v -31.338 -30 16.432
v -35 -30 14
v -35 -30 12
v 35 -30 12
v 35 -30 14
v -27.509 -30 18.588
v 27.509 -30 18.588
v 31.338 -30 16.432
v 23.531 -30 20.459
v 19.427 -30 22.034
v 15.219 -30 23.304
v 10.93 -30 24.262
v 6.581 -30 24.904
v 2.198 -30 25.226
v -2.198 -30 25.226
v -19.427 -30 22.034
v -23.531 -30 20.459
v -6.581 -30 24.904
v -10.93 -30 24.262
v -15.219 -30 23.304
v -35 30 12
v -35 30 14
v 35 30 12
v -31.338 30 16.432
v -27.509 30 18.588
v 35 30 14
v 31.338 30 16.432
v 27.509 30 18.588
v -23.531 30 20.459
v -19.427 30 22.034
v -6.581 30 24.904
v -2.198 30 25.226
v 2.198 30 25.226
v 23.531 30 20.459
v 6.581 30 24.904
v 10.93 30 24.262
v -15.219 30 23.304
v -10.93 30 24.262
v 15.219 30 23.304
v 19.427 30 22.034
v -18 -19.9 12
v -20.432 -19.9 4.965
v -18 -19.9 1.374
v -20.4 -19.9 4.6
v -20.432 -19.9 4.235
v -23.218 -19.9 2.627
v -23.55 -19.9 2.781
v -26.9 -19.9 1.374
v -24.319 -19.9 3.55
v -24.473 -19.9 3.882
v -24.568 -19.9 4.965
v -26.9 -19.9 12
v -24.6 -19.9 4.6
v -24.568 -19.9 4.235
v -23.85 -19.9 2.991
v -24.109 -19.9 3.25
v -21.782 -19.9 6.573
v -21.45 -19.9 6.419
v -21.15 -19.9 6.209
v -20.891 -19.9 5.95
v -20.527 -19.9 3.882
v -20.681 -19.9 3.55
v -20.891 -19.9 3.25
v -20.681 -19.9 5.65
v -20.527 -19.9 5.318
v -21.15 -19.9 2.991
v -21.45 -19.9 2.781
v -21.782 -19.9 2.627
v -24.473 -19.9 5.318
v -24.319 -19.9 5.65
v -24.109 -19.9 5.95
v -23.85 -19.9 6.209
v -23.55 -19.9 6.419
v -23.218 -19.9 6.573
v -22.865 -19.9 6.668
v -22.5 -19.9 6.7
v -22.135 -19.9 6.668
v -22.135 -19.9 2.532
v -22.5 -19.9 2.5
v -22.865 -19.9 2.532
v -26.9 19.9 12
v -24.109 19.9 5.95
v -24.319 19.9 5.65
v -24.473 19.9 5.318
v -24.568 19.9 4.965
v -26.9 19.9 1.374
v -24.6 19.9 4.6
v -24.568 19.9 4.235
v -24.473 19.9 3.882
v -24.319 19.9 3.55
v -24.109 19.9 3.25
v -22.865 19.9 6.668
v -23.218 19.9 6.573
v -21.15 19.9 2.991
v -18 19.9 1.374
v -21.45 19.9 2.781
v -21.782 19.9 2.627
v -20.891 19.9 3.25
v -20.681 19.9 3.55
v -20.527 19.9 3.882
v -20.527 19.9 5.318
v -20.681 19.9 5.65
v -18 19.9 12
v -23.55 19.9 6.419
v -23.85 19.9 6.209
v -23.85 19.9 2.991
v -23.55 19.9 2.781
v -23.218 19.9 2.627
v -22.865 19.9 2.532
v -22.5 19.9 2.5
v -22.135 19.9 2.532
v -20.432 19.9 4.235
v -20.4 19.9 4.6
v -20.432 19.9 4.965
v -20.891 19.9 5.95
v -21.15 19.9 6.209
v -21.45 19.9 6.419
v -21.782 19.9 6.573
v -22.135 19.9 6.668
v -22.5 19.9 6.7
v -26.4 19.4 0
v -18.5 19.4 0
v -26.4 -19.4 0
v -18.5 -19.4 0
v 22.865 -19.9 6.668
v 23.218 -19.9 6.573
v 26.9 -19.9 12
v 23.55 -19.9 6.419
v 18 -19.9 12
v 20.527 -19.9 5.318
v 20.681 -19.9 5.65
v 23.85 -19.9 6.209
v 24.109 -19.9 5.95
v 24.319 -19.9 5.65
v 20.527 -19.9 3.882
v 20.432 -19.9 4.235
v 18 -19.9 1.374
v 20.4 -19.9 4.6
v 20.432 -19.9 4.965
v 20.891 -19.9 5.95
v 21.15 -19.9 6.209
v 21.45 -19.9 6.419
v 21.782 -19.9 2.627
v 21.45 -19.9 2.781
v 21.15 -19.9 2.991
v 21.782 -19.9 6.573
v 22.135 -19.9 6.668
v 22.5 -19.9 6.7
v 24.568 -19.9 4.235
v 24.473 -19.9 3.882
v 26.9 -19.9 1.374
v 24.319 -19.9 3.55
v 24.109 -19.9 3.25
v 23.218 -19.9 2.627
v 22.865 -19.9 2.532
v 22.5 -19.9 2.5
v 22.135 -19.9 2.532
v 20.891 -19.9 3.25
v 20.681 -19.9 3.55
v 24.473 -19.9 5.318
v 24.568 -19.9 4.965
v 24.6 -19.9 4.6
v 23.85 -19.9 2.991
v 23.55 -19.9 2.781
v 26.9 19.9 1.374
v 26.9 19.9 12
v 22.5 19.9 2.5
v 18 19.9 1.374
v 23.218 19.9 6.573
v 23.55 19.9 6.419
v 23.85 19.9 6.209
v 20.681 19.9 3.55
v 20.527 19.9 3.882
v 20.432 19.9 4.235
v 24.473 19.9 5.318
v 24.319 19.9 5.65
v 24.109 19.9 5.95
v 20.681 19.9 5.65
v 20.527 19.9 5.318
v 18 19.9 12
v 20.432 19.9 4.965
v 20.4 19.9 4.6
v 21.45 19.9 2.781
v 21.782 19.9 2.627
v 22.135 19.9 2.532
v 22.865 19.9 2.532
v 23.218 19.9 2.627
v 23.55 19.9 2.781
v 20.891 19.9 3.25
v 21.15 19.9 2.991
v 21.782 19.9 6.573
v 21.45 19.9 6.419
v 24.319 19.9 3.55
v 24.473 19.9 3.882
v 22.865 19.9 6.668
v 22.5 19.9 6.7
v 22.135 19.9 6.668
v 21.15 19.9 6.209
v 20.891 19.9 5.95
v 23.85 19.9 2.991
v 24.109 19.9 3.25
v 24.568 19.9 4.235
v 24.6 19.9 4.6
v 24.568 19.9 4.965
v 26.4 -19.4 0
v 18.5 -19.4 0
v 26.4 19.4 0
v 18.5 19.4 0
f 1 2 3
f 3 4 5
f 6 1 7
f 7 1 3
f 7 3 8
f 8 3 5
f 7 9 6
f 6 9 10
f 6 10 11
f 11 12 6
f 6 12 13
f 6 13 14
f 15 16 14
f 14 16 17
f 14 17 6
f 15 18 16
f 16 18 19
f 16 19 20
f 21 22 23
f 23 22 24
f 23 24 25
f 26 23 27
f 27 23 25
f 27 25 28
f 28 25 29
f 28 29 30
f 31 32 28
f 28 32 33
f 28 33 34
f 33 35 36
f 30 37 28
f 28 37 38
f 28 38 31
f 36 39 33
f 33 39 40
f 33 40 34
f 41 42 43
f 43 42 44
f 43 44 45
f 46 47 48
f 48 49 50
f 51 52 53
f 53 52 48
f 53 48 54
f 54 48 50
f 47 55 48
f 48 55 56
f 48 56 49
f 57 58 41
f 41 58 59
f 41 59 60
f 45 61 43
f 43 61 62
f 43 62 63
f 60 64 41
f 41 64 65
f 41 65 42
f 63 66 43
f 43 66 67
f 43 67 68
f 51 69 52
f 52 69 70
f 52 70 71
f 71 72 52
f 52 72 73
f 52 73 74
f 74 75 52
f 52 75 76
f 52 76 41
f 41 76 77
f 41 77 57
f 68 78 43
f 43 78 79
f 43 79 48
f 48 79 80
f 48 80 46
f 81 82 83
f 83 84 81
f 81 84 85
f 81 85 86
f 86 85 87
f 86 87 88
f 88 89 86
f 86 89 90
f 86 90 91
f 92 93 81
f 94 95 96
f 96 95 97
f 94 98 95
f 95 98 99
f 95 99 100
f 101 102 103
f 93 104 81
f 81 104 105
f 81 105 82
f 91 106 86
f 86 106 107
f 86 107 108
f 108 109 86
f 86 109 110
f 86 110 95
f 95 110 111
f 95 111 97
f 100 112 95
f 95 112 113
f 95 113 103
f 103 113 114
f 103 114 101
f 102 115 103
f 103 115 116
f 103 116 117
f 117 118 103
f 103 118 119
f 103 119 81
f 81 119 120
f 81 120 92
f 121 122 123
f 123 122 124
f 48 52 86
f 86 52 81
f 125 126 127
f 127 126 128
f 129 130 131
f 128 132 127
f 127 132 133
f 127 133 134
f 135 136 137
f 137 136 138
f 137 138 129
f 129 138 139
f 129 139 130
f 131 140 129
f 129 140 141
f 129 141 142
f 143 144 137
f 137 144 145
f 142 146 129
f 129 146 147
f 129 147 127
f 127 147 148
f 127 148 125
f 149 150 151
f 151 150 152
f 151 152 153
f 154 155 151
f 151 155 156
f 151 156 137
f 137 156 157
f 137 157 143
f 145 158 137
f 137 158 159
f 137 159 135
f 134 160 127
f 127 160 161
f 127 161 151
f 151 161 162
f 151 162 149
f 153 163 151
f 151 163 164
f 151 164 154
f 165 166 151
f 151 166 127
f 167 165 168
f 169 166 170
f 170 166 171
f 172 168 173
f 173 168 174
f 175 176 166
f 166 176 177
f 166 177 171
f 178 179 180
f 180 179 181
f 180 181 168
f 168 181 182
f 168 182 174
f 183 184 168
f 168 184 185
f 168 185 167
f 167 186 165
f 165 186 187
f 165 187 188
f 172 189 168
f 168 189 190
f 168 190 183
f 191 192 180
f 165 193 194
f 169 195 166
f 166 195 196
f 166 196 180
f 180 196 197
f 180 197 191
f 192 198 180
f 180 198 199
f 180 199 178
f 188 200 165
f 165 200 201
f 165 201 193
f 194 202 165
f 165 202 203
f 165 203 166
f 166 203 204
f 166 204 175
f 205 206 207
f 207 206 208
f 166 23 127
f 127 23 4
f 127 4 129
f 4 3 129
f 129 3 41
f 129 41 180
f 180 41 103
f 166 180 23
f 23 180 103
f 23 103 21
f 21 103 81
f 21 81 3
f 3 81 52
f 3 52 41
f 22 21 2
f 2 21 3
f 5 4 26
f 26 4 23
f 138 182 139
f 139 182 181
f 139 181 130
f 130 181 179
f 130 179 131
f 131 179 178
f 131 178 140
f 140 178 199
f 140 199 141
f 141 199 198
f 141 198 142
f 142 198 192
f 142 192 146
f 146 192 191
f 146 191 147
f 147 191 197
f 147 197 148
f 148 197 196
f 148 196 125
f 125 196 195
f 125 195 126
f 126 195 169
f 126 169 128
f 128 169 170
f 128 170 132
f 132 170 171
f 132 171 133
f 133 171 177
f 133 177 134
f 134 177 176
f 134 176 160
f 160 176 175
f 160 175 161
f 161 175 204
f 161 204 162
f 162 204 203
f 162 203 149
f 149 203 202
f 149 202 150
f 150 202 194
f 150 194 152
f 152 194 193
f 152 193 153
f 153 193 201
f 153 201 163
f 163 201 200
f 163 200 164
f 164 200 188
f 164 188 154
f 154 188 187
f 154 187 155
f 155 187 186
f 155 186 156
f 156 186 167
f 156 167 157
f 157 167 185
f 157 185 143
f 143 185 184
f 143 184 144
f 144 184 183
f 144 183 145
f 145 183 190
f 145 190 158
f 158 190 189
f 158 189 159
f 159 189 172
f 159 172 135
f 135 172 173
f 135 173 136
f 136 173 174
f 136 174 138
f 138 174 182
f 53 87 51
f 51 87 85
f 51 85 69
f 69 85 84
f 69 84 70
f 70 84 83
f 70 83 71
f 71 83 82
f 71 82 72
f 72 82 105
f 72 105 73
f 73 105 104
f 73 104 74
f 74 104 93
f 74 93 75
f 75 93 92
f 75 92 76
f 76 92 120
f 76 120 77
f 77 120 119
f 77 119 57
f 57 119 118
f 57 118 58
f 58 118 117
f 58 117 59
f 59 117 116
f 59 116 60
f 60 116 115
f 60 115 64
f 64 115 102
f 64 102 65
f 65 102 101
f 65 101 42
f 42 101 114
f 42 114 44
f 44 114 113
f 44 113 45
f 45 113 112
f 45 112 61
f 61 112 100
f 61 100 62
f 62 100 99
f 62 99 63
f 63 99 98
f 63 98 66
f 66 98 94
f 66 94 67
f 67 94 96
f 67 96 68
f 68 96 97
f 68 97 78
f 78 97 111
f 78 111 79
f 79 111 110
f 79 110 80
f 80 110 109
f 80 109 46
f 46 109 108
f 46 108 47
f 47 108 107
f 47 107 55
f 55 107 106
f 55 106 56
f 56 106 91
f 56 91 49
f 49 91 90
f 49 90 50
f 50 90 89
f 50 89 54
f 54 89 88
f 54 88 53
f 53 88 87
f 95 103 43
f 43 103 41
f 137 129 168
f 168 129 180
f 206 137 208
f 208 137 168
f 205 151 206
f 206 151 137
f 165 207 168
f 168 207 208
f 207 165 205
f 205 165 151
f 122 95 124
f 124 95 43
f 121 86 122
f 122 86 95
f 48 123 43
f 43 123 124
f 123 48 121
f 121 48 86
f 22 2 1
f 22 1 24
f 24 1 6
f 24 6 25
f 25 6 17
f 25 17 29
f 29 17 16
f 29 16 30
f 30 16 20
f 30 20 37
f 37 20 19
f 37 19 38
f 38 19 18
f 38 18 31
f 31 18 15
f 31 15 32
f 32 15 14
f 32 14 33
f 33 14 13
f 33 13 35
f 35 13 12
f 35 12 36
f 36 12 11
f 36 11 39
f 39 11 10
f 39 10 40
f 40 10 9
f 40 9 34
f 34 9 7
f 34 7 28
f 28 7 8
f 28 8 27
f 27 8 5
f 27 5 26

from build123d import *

# Parameters (mm, degrees)
SKETCH2_W             = 53.8
SKETCH2_H             = 39.8
BOSS_EXTRUDE1_DEPTH   = 12
SKETCH3_W             = 70
SKETCH3_H             = 60
BOSS_EXTRUDE2_DEPTH   = 31.5
SKETCH4_R             = 2.1
CUT_EXTRUDE1_DEPTH    = 50.9
SKETCH5_W             = 36
SKETCH5_H             = 39.8
CUT_EXTRUDE2_DEPTH    = 12
CHAMFER1_SIZE         = 0.5
CHAMFER1_SIZE2        = 1.37373871
CHAMFER1_PART_2_SIZE  = 0.5
CHAMFER1_PART_2_SIZE2 = 1.37373871
CUT_EXTRUDE13_DEPTH   = 61


with BuildPart() as part:
    # Sketch2 → Boss-Extrude1 (new body)
    with BuildSketch(Plane.XY):
        Rectangle(SKETCH2_W, SKETCH2_H)
    extrude(amount=BOSS_EXTRUDE1_DEPTH)

    # Sketch3 → Boss-Extrude2 (add)
    with BuildSketch(Plane.XY.offset(12)):
        Rectangle(SKETCH3_W, SKETCH3_H)
    extrude(amount=BOSS_EXTRUDE2_DEPTH)

    # Sketch4 → Cut-Extrude1 (cut, through all)
    with BuildSketch(Plane(origin=(0, 19.9, 0), x_dir=(1, 0, 0), z_dir=(0, 1, 0))):
        with Locations((22.5, -4.6)):
            Circle(SKETCH4_R)
        with Locations((-22.5, -4.6)):
            Circle(SKETCH4_R)
    extrude(amount=-CUT_EXTRUDE1_DEPTH, mode=Mode.SUBTRACT)

    # Sketch5 → Cut-Extrude2 (cut)
    with BuildSketch(Plane(origin=(0, 0, 0), x_dir=(-1, 0, 0), z_dir=(0, 0, -1))):
        Rectangle(SKETCH5_W, SKETCH5_H)
    extrude(amount=-CUT_EXTRUDE2_DEPTH, mode=Mode.SUBTRACT)

    # Chamfer1
    chamfer1_edges = [part.edges().sort_by_distance(p)[0] for p in [
        (-22.45, 19.9, 0),
        (-18, 0, 0),
        (-22.45, -19.9, 0),
        (-26.9, 0, 0),
    ]]
    chamfer1_side = [part.faces().sort_by_distance(p)[0] for p in [
        (-22.45, 0, 0),
    ]]
    chamfer(chamfer1_edges, length=CHAMFER1_SIZE, length2=CHAMFER1_SIZE2, reference=chamfer1_side[0])

    # Chamfer1 part 2
    chamfer1_part_2_edges = [part.edges().sort_by_distance(p)[0] for p in [
        (22.45, -19.9, 0),
        (18, 0, 0),
        (22.45, 19.9, 0),
        (26.9, 0, 0),
    ]]
    chamfer1_part_2_side = [part.faces().sort_by_distance(p)[0] for p in [
        (22.45, 0, 0),
    ]]
    chamfer(chamfer1_part_2_edges, length=CHAMFER1_PART_2_SIZE, length2=CHAMFER1_PART_2_SIZE2, reference=chamfer1_part_2_side[0])

    # Sketch27 → Cut-Extrude13 (cut, through all)
    with BuildSketch(Plane.XZ.offset(30)):
        with BuildLine():
            ThreePointArc((-35, 14), (0, 25.266028276), (35, 14))
            ThreePointArc((35, 14), (0, 140.049707845), (-35, 14))
        make_face()
    extrude(amount=-CUT_EXTRUDE13_DEPTH, mode=Mode.SUBTRACT)


solid = part.part
